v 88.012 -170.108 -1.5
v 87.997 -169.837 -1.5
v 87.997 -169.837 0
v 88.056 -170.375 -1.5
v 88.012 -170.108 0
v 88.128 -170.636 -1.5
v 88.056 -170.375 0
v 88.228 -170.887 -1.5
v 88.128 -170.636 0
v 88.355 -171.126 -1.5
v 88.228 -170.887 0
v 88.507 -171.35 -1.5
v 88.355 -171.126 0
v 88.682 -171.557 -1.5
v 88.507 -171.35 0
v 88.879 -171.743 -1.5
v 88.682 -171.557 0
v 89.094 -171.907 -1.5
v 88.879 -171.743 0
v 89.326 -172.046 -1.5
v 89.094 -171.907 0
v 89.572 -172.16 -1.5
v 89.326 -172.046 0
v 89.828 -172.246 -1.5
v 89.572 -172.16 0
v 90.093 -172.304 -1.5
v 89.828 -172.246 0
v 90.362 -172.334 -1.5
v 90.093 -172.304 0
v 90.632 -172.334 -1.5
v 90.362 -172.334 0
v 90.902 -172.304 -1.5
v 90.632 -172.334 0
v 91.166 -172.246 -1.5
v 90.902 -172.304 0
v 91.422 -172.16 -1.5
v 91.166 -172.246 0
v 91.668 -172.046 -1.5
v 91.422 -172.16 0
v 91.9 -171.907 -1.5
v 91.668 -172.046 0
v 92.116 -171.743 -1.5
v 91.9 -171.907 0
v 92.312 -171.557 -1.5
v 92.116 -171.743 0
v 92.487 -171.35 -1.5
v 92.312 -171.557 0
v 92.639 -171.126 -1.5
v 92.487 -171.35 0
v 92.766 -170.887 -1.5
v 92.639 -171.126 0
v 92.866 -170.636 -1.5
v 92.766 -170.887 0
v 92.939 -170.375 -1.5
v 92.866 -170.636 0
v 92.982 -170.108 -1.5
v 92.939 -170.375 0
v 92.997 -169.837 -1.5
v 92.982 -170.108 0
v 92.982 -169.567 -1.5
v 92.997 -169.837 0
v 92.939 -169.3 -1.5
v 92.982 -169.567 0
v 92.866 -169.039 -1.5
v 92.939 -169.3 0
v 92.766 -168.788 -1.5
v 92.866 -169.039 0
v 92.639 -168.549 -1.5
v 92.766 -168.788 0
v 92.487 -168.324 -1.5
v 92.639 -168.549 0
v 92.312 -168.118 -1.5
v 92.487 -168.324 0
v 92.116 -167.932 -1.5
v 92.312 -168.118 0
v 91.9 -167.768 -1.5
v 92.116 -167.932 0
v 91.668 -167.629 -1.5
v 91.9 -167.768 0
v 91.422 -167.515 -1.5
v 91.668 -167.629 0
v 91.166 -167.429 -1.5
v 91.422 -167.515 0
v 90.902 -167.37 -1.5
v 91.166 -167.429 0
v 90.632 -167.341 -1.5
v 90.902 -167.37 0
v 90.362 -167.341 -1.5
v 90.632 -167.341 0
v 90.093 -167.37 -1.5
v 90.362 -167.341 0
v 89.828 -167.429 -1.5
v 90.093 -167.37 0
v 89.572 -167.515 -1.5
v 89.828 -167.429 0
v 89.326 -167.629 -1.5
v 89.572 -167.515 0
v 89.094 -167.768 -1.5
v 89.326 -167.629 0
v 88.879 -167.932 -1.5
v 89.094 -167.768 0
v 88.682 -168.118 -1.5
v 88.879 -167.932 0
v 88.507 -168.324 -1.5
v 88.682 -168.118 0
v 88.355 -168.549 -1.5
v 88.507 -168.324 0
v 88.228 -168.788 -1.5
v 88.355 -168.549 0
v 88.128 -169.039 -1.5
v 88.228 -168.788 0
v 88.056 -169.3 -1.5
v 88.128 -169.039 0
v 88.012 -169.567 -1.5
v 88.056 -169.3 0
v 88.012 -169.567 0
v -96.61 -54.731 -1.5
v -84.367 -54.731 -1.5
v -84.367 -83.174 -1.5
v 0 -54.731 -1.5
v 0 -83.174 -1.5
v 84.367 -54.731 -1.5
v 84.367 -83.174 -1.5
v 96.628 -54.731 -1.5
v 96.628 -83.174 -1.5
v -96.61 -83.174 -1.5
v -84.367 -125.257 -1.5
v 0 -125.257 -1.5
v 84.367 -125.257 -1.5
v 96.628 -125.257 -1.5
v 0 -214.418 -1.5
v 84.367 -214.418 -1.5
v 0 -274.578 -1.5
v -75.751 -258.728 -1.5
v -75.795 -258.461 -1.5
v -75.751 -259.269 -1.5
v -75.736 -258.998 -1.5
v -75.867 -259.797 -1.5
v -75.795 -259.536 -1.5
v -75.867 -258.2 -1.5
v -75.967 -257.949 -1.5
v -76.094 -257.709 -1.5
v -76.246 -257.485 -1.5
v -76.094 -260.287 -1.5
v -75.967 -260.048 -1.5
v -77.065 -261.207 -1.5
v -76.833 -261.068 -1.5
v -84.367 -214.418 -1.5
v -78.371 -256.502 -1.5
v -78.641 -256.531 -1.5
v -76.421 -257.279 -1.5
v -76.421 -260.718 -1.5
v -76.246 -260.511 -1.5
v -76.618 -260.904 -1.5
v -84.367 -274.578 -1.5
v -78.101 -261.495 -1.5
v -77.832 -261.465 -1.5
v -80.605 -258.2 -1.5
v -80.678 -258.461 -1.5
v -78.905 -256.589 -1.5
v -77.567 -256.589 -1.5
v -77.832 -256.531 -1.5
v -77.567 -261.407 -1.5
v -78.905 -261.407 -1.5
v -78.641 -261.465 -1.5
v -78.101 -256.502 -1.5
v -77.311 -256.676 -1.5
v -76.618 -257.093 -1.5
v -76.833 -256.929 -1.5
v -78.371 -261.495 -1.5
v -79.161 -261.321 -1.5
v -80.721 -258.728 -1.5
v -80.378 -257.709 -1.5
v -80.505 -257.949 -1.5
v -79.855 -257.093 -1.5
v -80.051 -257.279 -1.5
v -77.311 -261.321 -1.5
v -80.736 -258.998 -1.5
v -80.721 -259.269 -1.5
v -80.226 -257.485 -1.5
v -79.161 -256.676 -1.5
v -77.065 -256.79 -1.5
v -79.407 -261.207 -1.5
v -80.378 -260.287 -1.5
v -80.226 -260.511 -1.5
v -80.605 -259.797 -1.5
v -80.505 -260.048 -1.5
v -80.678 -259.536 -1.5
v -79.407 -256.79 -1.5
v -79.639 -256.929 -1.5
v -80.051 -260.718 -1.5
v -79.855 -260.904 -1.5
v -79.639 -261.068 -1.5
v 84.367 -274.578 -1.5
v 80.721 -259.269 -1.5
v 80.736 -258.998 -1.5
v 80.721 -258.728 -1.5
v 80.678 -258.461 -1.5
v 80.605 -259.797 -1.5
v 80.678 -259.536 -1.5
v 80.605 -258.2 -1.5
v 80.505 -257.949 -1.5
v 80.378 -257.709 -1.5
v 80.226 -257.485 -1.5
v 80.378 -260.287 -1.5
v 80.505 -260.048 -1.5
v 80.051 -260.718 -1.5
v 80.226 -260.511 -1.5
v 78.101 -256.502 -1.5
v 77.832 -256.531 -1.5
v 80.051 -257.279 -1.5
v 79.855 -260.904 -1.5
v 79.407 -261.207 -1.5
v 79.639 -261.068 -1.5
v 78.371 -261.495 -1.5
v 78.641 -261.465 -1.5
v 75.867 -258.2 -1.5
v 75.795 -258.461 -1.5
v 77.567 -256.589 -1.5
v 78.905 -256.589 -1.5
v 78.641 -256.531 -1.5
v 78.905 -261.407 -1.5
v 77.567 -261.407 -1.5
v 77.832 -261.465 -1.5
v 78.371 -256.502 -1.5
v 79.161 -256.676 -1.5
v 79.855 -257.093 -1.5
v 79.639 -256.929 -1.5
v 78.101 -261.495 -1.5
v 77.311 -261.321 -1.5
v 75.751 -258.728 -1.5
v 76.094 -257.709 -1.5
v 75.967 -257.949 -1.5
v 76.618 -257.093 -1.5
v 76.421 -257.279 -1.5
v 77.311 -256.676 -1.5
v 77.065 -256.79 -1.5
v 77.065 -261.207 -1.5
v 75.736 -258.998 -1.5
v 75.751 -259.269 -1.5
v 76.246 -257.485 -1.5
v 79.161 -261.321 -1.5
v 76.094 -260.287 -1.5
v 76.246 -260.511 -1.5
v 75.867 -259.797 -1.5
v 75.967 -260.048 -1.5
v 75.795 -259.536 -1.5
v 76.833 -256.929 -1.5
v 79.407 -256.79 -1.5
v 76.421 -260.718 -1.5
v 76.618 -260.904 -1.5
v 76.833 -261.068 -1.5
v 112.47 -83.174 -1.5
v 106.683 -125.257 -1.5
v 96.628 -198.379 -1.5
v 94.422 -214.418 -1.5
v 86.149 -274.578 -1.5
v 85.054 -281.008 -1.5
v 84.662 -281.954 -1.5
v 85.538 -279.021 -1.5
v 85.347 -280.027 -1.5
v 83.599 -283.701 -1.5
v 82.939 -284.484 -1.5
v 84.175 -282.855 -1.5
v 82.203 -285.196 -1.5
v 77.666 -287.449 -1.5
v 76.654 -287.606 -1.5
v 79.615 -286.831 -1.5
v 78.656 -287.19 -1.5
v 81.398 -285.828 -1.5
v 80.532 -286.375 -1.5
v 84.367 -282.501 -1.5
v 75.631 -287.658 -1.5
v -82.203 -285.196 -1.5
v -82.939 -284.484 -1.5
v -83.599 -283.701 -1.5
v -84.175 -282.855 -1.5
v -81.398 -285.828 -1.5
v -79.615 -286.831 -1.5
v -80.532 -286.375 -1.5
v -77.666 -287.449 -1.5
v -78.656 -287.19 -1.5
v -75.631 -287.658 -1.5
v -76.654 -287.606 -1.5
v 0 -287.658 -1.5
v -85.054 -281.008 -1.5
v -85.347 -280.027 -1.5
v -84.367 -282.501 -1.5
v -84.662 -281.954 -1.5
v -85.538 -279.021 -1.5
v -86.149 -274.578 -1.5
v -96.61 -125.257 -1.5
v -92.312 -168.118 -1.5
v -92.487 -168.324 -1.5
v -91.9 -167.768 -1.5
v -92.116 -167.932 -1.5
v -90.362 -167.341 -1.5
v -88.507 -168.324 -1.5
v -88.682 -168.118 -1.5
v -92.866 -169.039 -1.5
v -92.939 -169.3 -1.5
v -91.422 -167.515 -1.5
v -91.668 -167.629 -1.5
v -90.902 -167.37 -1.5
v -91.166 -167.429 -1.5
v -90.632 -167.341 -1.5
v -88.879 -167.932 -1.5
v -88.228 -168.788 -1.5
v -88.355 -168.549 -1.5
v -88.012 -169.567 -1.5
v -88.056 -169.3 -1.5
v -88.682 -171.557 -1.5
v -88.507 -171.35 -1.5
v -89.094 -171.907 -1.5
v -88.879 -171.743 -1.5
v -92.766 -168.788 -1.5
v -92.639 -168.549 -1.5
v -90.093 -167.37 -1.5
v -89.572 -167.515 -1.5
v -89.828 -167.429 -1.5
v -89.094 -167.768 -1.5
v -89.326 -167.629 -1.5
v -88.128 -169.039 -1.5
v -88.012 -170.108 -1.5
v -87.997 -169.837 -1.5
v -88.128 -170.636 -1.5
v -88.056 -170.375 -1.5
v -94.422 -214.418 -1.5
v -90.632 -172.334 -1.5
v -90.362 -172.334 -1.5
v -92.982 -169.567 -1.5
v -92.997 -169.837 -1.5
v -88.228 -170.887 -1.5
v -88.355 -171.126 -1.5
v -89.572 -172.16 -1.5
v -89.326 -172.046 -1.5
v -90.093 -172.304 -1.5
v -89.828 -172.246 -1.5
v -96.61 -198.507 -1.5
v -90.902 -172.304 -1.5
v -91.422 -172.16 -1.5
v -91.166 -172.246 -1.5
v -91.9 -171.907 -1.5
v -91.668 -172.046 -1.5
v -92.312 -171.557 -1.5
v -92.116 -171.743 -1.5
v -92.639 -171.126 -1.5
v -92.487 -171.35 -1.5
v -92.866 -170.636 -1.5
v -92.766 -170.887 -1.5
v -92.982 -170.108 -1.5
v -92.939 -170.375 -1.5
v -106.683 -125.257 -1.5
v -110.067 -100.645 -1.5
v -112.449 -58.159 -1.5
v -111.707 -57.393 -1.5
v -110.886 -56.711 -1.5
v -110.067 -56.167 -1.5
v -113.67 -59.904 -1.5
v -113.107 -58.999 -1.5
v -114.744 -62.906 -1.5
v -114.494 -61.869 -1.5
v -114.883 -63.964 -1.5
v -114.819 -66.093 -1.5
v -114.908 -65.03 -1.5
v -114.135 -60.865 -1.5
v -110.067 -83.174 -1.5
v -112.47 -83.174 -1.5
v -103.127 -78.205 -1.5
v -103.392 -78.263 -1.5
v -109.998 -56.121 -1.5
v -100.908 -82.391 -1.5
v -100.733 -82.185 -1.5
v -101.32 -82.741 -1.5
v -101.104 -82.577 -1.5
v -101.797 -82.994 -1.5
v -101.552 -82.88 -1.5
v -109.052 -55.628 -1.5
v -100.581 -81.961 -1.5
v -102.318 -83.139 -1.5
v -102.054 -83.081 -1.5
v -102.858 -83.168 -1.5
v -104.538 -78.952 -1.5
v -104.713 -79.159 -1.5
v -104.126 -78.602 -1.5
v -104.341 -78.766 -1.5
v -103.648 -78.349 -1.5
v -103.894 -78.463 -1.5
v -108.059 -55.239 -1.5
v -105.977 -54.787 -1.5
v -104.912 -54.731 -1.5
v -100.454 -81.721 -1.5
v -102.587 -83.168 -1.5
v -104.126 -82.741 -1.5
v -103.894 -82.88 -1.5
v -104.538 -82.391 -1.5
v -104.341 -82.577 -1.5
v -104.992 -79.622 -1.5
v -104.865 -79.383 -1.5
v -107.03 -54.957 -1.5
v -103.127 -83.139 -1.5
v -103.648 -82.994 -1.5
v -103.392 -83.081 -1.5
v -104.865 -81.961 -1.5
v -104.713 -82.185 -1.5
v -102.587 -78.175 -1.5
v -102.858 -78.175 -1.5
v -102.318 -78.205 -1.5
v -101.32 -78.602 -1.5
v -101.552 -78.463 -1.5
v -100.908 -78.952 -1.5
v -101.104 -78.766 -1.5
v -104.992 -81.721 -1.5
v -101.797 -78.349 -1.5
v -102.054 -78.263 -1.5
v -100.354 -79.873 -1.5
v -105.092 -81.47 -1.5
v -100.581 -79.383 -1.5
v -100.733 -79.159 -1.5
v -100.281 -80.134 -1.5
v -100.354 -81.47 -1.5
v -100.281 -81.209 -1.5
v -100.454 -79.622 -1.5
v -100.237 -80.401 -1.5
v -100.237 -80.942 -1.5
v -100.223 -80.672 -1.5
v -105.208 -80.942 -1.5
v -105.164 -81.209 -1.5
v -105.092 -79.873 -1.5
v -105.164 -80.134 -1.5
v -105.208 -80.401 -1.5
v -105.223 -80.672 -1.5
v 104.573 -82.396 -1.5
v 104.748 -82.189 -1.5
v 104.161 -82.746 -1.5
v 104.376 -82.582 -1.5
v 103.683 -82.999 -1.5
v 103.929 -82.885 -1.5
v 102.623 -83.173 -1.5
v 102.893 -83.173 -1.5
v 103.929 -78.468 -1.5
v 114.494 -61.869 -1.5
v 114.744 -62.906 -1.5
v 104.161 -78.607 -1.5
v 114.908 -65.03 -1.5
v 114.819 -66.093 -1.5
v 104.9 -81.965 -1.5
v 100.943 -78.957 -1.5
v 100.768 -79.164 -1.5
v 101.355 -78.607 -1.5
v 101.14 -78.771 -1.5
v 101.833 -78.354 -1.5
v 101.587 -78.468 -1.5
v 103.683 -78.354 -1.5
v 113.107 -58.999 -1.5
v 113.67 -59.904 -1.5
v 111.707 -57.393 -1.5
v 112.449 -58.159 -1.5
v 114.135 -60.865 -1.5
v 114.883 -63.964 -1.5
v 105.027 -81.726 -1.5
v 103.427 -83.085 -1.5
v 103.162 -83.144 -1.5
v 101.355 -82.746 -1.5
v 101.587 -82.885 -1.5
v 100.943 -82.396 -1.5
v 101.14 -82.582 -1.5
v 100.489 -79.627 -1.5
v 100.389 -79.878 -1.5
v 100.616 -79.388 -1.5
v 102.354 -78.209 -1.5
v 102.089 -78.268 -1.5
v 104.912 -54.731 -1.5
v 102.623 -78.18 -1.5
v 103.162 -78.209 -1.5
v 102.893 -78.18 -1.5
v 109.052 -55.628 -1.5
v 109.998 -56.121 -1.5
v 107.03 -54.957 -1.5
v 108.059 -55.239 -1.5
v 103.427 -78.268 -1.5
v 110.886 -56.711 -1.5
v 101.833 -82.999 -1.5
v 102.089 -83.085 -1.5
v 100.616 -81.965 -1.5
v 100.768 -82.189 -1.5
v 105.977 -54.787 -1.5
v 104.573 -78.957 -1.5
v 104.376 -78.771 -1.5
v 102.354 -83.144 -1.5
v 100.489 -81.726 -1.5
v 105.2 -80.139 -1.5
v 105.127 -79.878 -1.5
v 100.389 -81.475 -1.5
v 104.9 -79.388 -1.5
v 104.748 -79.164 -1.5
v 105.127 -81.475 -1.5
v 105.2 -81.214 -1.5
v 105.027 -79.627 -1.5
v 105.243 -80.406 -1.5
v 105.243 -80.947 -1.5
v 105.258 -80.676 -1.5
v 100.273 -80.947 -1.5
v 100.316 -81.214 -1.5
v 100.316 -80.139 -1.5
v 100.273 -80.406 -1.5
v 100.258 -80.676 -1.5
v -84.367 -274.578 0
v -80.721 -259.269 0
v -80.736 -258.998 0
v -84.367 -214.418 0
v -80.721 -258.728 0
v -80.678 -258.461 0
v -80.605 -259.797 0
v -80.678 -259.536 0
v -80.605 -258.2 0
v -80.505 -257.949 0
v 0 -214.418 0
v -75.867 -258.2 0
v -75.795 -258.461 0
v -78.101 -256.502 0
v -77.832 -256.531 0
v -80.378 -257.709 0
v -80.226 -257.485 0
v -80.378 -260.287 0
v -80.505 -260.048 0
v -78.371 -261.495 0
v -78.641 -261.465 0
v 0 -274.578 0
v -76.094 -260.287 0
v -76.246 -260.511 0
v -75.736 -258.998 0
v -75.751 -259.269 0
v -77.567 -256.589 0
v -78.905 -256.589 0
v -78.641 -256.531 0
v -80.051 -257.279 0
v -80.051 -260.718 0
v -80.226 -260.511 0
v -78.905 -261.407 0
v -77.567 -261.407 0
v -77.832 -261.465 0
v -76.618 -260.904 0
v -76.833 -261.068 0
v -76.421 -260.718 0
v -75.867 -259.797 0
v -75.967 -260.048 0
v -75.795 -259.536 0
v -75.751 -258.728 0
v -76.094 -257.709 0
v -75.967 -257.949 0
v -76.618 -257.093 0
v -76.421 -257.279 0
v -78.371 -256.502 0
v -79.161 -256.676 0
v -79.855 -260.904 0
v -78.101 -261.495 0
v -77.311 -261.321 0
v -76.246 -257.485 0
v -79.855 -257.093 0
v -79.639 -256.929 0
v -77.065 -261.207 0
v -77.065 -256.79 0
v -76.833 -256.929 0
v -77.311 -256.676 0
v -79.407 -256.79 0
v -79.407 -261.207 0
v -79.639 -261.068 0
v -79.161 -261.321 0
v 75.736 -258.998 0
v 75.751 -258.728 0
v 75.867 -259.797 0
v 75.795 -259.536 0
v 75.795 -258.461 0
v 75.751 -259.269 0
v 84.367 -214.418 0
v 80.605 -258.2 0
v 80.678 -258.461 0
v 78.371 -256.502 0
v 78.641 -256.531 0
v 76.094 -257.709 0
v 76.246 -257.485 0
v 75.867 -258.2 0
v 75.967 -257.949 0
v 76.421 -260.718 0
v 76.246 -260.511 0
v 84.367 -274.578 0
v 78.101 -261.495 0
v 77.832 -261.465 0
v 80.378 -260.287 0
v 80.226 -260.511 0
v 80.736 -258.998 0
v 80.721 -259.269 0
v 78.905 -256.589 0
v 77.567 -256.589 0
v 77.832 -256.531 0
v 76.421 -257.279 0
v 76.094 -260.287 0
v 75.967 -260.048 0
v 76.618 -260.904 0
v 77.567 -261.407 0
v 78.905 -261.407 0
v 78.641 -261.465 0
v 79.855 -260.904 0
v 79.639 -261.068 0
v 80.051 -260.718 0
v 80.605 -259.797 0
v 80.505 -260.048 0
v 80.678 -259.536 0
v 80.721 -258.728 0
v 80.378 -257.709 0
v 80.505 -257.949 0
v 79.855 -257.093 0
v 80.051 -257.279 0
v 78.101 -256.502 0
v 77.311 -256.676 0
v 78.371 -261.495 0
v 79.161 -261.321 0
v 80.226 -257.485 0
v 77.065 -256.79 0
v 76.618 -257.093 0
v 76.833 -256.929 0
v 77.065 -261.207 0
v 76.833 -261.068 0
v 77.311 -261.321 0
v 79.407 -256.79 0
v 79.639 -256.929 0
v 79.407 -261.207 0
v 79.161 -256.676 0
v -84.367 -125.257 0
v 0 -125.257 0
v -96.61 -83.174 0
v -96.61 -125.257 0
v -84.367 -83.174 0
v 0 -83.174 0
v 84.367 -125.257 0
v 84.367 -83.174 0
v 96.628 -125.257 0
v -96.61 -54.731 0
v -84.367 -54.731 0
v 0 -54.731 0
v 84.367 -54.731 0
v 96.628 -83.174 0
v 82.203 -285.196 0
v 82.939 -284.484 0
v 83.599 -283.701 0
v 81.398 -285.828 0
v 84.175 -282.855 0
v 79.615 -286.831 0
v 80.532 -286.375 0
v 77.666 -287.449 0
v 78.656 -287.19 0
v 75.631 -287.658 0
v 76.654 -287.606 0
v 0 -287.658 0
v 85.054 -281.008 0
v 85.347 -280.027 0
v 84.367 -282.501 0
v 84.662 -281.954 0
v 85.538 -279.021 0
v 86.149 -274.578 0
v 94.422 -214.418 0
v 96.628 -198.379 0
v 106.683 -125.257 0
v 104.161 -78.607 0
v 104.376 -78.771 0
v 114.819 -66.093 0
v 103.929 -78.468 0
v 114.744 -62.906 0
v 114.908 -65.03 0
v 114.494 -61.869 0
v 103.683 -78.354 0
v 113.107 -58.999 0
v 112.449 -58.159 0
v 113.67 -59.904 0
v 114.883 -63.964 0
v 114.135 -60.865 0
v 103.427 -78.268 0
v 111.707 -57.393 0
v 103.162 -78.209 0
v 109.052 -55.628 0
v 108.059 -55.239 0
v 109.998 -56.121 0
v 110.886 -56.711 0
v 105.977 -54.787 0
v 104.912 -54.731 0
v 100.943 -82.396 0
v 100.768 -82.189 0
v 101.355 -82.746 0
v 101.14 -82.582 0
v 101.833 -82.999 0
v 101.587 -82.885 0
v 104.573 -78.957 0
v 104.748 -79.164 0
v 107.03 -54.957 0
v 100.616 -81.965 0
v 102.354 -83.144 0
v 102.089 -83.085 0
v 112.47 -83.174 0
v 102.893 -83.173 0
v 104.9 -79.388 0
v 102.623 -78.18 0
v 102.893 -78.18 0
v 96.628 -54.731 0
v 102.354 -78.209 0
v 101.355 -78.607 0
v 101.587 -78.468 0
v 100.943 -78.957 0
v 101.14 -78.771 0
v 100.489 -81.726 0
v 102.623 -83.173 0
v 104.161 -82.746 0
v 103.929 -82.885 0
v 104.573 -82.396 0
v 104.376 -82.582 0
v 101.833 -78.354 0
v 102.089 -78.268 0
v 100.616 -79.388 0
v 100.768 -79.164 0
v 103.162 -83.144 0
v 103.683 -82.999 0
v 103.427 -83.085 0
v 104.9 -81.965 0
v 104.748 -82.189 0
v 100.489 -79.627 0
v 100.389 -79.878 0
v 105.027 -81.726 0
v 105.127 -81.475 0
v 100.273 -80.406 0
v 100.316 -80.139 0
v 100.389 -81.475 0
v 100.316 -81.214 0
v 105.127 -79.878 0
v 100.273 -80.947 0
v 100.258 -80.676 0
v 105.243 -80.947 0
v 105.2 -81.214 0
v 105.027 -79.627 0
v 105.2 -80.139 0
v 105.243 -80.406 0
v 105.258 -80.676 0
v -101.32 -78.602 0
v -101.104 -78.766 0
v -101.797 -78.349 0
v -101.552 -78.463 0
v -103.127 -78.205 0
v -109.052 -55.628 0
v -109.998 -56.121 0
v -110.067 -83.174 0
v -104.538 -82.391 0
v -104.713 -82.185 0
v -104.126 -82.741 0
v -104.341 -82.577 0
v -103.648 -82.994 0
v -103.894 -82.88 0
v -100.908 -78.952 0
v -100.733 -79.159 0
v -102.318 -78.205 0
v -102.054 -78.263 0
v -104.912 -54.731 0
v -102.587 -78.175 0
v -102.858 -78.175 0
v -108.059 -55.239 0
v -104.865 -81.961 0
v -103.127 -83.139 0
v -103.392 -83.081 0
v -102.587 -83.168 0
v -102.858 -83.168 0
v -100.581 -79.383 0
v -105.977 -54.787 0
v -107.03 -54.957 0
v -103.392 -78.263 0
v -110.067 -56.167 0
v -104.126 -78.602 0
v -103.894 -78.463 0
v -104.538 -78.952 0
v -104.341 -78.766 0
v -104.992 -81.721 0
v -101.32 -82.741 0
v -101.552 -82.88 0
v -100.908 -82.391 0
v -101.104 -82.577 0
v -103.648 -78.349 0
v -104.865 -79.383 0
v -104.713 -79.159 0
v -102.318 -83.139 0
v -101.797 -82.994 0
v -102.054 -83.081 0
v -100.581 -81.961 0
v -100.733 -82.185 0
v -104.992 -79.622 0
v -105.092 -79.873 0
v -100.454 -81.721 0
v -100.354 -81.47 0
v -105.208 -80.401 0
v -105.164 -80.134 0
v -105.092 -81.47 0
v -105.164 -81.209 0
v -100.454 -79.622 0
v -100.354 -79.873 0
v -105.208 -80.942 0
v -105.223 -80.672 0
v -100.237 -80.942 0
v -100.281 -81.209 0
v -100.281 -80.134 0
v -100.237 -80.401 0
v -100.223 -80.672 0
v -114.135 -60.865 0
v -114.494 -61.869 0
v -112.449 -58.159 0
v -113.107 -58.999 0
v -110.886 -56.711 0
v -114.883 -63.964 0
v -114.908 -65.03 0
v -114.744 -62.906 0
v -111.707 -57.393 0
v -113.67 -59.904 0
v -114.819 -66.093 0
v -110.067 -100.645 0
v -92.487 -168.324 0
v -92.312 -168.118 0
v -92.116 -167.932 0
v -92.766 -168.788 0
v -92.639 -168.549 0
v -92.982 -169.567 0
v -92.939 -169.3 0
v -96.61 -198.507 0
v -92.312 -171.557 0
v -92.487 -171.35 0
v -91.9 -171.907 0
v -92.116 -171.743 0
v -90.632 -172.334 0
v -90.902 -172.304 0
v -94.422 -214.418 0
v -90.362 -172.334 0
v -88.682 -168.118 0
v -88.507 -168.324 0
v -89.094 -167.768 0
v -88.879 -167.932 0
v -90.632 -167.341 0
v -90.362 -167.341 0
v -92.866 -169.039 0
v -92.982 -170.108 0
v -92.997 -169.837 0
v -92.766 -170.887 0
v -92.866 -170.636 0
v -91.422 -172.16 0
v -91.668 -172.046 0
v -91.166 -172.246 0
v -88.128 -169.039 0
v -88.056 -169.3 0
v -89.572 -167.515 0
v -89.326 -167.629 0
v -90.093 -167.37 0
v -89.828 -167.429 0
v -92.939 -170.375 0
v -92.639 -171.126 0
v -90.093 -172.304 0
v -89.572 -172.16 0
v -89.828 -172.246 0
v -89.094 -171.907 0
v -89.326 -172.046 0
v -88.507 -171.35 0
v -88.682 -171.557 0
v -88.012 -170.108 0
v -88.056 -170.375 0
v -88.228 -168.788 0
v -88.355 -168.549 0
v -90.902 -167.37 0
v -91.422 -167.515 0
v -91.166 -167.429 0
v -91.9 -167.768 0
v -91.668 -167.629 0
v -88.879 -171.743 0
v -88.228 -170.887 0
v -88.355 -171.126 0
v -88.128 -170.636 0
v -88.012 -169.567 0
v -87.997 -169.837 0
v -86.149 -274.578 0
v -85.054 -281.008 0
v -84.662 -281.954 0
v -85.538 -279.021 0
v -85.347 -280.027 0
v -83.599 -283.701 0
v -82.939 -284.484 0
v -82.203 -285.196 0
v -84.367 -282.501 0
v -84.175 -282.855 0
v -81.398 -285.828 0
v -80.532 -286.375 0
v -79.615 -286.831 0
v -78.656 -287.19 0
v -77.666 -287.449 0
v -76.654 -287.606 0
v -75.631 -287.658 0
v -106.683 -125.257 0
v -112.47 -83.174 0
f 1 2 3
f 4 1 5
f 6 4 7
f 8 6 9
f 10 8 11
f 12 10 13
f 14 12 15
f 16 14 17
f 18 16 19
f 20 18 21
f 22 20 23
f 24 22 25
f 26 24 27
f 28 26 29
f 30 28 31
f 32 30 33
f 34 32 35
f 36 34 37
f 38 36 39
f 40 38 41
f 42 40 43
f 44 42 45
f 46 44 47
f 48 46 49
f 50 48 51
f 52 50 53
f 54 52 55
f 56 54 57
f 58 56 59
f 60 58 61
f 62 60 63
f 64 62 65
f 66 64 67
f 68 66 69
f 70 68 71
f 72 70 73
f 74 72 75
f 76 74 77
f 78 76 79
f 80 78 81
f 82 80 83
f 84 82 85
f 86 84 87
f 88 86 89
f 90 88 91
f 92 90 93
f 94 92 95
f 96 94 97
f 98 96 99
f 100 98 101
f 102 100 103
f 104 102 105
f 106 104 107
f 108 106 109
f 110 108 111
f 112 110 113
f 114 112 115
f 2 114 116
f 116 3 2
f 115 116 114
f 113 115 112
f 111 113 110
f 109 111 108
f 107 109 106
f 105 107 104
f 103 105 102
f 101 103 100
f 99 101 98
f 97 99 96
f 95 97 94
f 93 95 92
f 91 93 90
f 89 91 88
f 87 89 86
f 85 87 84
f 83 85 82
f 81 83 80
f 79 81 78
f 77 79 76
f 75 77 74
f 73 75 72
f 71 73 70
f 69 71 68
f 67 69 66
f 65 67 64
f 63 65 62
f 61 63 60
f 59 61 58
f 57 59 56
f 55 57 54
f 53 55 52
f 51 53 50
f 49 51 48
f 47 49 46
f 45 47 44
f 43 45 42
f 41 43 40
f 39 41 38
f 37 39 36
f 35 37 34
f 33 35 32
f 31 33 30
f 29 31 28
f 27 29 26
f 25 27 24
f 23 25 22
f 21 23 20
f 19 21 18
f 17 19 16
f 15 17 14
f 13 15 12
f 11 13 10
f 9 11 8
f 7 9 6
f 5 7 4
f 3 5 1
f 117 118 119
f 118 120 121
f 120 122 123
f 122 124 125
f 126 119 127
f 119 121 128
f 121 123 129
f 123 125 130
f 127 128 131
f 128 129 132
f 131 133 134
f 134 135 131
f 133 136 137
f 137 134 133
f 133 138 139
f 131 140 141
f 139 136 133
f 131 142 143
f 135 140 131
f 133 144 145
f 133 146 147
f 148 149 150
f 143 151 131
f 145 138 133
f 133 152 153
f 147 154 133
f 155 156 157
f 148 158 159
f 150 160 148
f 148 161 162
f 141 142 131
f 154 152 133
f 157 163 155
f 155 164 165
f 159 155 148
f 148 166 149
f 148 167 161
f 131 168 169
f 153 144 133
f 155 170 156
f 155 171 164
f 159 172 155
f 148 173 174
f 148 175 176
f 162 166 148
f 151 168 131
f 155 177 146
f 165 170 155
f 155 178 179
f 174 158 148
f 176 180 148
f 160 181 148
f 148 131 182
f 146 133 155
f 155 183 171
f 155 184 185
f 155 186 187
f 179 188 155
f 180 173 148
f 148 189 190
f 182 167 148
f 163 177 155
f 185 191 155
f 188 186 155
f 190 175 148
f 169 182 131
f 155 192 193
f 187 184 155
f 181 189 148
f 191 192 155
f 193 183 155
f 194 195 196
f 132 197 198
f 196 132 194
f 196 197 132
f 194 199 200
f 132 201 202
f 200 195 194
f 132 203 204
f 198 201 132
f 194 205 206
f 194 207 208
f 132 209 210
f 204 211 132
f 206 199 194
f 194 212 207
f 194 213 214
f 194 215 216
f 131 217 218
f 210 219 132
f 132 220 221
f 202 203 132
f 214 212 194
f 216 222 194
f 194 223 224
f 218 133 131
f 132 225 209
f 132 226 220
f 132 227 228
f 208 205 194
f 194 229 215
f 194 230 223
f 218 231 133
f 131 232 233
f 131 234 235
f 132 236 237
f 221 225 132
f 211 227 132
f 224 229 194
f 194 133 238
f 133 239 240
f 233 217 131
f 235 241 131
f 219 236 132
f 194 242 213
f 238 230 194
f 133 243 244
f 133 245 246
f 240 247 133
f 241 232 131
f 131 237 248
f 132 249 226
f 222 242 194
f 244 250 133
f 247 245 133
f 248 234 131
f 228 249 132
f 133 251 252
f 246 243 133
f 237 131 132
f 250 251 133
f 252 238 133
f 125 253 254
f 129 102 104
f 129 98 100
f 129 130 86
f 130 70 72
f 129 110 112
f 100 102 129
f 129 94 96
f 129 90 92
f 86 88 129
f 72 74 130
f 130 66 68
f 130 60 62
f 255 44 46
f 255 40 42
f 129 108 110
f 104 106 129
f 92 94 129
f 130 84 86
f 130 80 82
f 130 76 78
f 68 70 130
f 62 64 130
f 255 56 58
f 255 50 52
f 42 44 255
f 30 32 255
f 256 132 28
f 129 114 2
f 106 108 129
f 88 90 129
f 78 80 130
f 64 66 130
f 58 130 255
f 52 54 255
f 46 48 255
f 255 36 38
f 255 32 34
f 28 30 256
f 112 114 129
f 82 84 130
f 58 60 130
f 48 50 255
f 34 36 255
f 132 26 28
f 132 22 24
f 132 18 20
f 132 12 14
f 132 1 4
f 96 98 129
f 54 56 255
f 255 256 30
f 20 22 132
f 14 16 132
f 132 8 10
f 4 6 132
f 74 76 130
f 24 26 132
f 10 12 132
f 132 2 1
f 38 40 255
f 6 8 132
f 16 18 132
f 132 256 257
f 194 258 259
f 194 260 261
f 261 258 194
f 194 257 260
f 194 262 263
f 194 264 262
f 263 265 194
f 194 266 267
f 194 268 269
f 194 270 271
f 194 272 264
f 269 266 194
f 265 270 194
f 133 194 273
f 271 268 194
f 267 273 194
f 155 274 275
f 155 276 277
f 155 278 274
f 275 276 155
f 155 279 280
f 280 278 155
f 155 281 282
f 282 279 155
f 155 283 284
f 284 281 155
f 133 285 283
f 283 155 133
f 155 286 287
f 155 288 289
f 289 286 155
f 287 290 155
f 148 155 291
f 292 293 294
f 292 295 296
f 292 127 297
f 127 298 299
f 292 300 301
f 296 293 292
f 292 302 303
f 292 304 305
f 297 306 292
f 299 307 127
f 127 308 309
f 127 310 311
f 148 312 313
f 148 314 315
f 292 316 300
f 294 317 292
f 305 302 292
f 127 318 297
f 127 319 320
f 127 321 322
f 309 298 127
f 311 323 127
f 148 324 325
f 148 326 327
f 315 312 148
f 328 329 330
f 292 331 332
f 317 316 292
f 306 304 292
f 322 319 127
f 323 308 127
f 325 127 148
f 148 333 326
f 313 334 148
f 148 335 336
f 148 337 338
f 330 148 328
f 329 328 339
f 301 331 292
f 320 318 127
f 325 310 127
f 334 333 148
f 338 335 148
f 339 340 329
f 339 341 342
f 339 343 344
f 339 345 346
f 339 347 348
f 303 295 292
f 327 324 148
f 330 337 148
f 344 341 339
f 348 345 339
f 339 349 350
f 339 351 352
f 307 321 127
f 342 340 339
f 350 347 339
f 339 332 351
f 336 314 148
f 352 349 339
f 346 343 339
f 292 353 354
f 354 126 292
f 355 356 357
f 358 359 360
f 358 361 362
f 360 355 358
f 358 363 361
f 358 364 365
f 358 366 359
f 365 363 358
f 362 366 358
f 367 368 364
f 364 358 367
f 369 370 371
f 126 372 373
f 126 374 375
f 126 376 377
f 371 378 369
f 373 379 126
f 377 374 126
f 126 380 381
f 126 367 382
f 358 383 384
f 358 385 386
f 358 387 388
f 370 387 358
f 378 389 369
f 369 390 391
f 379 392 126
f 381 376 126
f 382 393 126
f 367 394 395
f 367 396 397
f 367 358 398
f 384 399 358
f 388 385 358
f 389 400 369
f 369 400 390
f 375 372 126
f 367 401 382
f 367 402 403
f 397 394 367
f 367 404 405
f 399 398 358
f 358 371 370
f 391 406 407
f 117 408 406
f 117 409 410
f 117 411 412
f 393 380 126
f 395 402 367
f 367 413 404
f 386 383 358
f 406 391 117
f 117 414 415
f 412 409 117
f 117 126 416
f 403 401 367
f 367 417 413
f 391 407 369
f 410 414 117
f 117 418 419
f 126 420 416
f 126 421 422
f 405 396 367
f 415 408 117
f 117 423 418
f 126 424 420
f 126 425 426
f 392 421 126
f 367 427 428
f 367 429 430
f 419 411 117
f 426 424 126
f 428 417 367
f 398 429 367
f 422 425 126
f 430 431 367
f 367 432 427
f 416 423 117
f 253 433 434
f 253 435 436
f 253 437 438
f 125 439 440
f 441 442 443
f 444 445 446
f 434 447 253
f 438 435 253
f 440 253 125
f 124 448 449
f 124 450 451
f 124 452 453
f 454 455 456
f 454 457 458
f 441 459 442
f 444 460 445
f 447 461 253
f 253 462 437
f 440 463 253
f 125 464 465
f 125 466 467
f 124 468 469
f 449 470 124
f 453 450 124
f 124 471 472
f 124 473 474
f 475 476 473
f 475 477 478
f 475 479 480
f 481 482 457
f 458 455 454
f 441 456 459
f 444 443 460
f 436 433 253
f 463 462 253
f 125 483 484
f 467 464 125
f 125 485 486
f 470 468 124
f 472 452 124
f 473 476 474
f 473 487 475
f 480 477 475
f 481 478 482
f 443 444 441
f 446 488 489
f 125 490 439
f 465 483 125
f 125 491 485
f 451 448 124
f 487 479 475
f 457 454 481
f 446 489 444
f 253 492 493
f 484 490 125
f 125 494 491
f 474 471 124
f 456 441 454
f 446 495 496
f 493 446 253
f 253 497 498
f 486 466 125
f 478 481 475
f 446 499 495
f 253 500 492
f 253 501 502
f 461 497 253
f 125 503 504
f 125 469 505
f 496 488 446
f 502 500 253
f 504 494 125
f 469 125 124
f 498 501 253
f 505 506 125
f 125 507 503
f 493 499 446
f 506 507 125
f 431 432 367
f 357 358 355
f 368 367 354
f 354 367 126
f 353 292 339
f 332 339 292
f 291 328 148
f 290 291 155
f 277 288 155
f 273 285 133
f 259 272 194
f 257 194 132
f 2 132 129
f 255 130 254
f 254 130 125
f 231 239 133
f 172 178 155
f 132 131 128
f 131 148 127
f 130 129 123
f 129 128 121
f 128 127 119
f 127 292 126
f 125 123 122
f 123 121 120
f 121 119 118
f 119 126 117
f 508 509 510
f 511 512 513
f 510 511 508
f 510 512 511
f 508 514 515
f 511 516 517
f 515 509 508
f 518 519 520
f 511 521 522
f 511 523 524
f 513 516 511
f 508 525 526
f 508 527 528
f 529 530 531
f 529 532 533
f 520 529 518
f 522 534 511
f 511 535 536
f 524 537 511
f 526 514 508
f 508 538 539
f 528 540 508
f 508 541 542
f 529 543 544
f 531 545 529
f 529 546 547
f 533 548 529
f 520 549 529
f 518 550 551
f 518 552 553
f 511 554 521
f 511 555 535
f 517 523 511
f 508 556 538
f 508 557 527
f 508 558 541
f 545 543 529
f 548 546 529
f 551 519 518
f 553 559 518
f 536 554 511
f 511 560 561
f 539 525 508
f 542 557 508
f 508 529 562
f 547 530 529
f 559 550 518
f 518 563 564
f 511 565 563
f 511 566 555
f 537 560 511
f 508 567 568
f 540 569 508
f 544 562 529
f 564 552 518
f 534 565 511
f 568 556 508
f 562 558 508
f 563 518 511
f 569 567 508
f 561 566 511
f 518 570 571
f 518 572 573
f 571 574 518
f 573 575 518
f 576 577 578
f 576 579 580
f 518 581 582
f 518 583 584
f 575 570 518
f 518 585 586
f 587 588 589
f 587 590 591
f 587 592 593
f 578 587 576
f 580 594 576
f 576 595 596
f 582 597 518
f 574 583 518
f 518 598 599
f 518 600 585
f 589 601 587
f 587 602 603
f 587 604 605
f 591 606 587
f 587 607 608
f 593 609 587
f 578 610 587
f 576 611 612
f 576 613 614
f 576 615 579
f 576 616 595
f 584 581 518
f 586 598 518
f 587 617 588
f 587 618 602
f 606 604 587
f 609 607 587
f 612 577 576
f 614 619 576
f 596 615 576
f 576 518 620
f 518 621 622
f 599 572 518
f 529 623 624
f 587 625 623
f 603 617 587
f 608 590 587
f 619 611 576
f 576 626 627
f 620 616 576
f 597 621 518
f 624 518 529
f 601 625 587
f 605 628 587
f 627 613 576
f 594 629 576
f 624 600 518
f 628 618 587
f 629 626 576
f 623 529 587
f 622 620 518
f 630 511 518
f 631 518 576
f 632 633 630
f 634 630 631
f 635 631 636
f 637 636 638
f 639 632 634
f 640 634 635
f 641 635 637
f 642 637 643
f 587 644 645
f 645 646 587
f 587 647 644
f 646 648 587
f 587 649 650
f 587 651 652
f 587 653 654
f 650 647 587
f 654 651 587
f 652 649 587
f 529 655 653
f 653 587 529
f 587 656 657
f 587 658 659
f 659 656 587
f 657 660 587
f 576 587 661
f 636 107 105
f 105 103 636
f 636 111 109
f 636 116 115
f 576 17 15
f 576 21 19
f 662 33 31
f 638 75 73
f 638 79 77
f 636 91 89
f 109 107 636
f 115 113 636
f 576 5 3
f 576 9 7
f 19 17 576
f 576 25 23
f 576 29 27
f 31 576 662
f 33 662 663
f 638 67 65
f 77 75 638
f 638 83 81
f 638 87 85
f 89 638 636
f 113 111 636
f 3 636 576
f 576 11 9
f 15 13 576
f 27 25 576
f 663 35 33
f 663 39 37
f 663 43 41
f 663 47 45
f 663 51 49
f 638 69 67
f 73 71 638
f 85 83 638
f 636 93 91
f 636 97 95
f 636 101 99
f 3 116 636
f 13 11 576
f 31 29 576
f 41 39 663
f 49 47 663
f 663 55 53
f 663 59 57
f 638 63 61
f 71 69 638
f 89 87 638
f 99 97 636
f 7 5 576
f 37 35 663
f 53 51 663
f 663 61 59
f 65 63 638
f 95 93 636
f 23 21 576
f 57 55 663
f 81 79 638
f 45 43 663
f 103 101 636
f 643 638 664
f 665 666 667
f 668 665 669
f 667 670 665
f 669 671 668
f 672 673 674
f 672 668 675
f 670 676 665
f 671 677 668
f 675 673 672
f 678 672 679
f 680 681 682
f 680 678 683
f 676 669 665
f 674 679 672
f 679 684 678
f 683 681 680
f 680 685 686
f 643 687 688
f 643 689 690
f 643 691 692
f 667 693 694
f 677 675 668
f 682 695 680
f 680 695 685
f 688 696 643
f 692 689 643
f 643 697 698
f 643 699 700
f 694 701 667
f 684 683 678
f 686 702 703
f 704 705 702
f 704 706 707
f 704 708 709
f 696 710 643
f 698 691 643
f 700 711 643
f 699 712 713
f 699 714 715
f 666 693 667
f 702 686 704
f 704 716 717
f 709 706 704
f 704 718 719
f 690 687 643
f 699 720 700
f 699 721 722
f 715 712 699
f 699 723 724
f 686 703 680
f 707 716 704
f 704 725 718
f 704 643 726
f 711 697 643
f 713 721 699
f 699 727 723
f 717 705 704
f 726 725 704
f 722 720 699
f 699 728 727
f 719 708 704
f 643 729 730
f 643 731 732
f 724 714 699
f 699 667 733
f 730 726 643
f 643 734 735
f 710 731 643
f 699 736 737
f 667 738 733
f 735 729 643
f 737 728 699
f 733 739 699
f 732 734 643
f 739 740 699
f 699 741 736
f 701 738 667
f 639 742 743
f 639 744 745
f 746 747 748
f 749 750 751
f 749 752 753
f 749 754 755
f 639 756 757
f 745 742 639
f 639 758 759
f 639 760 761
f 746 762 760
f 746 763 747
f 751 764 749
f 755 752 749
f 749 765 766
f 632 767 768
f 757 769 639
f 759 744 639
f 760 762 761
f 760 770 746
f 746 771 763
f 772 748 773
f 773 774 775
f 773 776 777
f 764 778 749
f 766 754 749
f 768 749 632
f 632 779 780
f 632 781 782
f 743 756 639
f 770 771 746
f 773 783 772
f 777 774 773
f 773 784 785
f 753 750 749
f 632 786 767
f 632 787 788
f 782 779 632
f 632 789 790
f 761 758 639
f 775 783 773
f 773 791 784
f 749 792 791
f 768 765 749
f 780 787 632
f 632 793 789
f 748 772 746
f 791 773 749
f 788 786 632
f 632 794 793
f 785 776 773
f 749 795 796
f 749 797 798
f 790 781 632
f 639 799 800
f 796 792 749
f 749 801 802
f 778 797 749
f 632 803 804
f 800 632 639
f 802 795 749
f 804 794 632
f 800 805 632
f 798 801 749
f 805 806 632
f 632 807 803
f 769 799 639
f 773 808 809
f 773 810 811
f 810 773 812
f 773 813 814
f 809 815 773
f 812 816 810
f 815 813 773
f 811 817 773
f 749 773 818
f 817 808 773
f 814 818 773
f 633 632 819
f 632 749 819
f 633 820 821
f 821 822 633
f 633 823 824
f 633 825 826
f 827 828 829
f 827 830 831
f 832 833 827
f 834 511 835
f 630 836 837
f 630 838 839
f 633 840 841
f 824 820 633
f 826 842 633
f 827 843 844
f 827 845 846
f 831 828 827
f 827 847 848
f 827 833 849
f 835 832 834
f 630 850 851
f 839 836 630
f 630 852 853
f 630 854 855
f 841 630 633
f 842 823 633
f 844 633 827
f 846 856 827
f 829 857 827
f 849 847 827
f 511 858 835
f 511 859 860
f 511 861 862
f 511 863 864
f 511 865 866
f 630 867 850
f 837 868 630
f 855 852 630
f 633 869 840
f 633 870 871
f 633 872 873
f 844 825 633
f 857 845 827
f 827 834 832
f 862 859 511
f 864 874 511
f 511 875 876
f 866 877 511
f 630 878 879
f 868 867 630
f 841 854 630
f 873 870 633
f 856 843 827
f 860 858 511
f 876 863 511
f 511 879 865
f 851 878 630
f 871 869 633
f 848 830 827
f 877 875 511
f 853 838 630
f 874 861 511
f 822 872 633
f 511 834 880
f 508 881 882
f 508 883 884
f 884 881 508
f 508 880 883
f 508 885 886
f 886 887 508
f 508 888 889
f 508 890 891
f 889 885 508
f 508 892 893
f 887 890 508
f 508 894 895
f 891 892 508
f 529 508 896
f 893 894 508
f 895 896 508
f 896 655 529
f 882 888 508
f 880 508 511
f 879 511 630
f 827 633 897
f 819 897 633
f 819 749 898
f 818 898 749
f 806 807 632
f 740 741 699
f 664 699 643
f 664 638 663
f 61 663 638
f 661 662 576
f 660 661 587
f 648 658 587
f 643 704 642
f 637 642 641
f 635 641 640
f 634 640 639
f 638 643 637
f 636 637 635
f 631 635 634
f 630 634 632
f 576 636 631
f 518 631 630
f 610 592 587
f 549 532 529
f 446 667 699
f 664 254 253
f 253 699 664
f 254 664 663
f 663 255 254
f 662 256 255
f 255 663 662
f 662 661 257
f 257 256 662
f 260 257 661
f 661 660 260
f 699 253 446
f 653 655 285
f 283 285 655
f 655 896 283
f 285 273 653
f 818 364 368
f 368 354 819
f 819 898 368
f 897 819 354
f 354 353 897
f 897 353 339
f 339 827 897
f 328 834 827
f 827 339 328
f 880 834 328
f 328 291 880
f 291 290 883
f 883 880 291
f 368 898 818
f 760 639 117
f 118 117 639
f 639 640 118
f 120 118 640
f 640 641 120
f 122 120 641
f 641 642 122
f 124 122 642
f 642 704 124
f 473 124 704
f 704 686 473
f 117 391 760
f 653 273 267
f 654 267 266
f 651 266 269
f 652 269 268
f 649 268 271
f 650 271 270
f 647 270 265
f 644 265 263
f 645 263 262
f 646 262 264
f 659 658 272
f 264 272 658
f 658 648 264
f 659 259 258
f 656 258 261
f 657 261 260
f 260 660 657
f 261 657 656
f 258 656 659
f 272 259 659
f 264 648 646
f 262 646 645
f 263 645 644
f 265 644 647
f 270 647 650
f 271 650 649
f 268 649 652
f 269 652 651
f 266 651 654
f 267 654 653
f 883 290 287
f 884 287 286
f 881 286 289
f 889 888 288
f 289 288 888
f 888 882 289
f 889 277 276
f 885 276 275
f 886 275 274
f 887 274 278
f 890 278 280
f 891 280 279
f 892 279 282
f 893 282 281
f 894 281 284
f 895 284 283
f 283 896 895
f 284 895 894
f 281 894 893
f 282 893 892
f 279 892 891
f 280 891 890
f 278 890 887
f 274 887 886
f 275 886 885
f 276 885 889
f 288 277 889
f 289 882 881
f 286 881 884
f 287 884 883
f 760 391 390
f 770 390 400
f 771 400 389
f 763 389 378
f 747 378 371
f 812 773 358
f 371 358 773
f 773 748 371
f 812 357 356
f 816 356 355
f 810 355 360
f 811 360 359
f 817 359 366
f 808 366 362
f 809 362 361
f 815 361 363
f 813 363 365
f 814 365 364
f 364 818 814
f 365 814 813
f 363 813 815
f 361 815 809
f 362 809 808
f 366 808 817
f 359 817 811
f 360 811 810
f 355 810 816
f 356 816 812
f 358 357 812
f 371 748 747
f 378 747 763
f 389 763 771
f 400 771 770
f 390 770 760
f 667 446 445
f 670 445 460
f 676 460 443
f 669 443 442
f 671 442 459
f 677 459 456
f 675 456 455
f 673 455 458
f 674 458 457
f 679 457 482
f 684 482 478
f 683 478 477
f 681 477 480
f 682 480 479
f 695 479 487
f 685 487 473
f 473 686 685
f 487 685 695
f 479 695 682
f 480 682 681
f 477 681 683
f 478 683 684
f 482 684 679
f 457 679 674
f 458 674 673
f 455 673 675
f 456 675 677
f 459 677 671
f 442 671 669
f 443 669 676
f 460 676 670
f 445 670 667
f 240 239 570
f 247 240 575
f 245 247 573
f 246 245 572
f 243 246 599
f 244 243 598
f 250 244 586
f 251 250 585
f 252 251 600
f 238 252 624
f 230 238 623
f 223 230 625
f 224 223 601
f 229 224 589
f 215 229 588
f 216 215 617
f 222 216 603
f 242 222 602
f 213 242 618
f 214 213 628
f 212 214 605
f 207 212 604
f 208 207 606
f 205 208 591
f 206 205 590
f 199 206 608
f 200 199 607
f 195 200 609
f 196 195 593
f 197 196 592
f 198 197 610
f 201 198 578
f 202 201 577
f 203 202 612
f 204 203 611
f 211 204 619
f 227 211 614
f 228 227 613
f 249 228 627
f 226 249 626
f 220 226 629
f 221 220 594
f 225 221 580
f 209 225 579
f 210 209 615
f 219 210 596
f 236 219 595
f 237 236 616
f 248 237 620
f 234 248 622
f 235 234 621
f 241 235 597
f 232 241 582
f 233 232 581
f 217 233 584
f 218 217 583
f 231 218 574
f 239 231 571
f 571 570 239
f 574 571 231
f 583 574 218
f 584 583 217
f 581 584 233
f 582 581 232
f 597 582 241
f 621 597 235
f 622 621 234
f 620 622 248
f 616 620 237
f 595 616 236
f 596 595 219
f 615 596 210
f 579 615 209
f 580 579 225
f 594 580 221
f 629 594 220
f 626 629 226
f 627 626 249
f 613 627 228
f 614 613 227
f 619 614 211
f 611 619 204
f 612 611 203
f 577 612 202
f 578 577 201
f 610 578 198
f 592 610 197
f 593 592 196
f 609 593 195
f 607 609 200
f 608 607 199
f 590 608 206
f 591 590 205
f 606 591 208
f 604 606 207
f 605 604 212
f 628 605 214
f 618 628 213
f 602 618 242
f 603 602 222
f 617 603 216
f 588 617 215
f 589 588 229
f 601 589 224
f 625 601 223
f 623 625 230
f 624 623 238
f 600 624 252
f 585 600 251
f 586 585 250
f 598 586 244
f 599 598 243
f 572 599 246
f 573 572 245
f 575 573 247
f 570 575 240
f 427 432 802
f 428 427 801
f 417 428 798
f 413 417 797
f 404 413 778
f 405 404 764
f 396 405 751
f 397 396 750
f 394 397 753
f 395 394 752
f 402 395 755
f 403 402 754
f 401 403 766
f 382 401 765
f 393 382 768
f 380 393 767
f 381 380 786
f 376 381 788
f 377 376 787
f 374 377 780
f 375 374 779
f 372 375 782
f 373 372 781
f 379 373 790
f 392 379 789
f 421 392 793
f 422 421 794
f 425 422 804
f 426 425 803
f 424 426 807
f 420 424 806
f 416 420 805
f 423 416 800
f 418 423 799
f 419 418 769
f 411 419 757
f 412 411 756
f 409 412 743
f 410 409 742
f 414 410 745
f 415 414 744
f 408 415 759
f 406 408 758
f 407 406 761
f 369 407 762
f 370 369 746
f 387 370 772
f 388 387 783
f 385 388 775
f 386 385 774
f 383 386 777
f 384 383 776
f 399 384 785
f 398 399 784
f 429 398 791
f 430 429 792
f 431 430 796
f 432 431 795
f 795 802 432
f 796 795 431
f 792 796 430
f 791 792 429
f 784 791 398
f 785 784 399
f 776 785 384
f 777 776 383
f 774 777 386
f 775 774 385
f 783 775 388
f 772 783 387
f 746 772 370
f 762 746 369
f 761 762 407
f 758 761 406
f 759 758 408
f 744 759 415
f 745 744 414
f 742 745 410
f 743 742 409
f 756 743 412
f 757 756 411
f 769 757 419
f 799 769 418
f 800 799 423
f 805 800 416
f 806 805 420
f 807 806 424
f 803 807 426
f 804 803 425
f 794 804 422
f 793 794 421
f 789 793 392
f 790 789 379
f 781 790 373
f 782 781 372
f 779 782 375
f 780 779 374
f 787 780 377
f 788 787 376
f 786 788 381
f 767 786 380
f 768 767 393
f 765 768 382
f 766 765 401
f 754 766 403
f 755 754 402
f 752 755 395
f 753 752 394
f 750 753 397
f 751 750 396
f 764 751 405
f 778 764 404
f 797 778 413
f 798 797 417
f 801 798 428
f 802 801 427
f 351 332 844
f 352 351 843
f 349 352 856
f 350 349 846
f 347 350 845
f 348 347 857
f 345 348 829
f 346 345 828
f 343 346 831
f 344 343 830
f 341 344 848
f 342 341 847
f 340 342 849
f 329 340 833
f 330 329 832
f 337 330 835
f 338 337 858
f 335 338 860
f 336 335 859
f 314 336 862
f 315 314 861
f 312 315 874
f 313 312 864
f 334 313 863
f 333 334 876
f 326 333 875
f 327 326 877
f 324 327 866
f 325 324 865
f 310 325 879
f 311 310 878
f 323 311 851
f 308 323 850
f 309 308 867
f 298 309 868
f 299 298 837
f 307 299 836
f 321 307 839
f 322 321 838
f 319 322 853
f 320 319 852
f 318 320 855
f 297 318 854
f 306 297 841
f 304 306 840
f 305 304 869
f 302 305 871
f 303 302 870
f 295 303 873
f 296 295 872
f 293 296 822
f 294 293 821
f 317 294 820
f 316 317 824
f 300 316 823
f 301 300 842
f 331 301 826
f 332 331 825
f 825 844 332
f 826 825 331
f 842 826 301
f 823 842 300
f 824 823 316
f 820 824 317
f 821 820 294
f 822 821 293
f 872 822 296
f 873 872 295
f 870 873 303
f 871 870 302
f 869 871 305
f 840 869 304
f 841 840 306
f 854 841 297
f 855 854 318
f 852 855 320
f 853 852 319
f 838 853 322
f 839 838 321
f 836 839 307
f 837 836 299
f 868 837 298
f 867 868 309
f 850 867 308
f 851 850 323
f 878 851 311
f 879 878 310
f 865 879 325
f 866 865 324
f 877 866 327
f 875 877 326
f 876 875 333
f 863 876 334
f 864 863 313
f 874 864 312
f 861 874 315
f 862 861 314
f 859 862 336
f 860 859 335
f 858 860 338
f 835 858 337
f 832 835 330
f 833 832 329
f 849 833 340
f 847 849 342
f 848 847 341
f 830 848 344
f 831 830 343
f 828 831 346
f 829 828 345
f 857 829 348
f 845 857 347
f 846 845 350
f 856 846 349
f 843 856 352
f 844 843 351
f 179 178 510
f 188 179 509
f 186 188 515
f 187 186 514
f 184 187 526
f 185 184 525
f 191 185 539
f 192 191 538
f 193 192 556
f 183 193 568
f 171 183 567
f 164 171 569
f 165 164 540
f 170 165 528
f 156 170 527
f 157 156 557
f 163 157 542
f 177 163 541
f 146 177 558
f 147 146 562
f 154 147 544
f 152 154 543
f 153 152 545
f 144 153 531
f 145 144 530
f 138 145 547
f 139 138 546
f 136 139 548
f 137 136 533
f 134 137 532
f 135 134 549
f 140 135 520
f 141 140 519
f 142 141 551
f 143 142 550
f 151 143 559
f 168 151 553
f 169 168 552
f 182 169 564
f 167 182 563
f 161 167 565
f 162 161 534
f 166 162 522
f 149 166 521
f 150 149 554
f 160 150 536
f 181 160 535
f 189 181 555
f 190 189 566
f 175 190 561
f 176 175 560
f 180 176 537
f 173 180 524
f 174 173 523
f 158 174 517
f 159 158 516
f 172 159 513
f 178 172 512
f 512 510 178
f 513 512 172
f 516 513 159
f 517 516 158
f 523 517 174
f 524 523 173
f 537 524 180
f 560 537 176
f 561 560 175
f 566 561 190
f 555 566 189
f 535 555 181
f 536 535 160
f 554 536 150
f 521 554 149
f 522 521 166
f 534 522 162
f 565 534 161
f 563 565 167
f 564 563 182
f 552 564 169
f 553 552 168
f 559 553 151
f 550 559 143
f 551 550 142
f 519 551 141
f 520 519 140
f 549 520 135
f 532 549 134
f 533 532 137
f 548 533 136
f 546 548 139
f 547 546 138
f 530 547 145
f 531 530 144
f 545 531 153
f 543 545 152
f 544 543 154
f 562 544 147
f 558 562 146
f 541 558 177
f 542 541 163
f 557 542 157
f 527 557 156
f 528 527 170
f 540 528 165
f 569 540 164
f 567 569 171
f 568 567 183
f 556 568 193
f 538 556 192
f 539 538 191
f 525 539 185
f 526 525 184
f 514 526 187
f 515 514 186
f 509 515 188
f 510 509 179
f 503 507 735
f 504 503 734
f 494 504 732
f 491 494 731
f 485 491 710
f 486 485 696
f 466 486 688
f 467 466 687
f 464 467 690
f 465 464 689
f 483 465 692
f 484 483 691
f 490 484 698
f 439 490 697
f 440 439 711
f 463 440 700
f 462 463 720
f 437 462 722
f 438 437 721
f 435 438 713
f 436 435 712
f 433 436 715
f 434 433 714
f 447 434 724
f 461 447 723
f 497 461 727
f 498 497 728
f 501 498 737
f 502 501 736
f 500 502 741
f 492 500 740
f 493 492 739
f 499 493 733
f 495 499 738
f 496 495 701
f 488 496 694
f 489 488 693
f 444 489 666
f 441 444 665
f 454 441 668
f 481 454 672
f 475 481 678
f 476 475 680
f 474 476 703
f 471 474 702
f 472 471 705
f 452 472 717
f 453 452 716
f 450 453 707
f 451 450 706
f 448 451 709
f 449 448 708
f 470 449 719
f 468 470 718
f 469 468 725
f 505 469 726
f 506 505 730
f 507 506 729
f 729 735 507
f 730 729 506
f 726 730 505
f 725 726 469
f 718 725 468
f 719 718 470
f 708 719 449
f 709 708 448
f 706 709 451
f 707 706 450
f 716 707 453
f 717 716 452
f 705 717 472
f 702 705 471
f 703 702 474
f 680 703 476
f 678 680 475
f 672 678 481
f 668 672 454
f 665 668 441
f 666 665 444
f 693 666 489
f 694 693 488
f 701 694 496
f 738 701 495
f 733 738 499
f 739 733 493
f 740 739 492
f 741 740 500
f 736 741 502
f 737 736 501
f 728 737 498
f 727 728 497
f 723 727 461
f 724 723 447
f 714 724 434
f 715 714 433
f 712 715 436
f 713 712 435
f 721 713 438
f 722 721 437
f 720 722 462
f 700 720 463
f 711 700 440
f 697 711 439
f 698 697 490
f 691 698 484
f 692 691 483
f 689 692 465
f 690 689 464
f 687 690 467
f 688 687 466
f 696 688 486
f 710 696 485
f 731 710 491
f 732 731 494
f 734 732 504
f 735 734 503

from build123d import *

# Parameters (mm, degrees)
BASE_FLANGE1_DEPTH = 1.5
FILLET1_R          = 10
SKETCH6_R          = 2.5
CUT_EXTRUDE1_DEPTH = 10


# Sheet-metal steps are written as plain solids
with BuildPart() as part:
    # Sketch1 → Base-Flange1 (new body)
    with BuildSketch(Plane.XY):
        Polygon((116.381309109, -54.730517105), (-116.381309109, -54.730517105), (-84.350299428, -287.658470614), (84.350299428, -287.658470614), align=None)
    extrude(amount=-BASE_FLANGE1_DEPTH)

    # Fillet1
    fillet1_edges = [part.edges().sort_by_distance(p)[0] for p in [
        (84.350299428, -287.658470614, -0.75),
        (-84.350299428, -287.658470614, -0.75),
        (-116.381309109, -54.730517105, -0.75),
        (116.381309109, -54.730517105, -0.75),
    ]]
    fillet(fillet1_edges, radius=FILLET1_R)

    # Sketch6 → Cut-Extrude1 (cut)
    with BuildSketch(Plane(origin=(0, 0, -1.5), x_dir=(-1, 0, 0), z_dir=(0, 0, -1))):
        with Locations((-102.757991697, -80.676477358)):
            Circle(SKETCH6_R)
        with Locations((-90.497057702, -169.837396474)):
            Circle(SKETCH6_R)
        with Locations((-78.236123708, -258.99831559)):
            Circle(SKETCH6_R)
        with Locations((102.722754997, -80.671631795)):
            Circle(SKETCH6_R)
        with Locations((90.497057702, -169.837396474)):
            Circle(SKETCH6_R)
        with Locations((78.236123708, -258.99831559)):
            Circle(SKETCH6_R)
    extrude(amount=-CUT_EXTRUDE1_DEPTH, mode=Mode.SUBTRACT)


solid = part.part
